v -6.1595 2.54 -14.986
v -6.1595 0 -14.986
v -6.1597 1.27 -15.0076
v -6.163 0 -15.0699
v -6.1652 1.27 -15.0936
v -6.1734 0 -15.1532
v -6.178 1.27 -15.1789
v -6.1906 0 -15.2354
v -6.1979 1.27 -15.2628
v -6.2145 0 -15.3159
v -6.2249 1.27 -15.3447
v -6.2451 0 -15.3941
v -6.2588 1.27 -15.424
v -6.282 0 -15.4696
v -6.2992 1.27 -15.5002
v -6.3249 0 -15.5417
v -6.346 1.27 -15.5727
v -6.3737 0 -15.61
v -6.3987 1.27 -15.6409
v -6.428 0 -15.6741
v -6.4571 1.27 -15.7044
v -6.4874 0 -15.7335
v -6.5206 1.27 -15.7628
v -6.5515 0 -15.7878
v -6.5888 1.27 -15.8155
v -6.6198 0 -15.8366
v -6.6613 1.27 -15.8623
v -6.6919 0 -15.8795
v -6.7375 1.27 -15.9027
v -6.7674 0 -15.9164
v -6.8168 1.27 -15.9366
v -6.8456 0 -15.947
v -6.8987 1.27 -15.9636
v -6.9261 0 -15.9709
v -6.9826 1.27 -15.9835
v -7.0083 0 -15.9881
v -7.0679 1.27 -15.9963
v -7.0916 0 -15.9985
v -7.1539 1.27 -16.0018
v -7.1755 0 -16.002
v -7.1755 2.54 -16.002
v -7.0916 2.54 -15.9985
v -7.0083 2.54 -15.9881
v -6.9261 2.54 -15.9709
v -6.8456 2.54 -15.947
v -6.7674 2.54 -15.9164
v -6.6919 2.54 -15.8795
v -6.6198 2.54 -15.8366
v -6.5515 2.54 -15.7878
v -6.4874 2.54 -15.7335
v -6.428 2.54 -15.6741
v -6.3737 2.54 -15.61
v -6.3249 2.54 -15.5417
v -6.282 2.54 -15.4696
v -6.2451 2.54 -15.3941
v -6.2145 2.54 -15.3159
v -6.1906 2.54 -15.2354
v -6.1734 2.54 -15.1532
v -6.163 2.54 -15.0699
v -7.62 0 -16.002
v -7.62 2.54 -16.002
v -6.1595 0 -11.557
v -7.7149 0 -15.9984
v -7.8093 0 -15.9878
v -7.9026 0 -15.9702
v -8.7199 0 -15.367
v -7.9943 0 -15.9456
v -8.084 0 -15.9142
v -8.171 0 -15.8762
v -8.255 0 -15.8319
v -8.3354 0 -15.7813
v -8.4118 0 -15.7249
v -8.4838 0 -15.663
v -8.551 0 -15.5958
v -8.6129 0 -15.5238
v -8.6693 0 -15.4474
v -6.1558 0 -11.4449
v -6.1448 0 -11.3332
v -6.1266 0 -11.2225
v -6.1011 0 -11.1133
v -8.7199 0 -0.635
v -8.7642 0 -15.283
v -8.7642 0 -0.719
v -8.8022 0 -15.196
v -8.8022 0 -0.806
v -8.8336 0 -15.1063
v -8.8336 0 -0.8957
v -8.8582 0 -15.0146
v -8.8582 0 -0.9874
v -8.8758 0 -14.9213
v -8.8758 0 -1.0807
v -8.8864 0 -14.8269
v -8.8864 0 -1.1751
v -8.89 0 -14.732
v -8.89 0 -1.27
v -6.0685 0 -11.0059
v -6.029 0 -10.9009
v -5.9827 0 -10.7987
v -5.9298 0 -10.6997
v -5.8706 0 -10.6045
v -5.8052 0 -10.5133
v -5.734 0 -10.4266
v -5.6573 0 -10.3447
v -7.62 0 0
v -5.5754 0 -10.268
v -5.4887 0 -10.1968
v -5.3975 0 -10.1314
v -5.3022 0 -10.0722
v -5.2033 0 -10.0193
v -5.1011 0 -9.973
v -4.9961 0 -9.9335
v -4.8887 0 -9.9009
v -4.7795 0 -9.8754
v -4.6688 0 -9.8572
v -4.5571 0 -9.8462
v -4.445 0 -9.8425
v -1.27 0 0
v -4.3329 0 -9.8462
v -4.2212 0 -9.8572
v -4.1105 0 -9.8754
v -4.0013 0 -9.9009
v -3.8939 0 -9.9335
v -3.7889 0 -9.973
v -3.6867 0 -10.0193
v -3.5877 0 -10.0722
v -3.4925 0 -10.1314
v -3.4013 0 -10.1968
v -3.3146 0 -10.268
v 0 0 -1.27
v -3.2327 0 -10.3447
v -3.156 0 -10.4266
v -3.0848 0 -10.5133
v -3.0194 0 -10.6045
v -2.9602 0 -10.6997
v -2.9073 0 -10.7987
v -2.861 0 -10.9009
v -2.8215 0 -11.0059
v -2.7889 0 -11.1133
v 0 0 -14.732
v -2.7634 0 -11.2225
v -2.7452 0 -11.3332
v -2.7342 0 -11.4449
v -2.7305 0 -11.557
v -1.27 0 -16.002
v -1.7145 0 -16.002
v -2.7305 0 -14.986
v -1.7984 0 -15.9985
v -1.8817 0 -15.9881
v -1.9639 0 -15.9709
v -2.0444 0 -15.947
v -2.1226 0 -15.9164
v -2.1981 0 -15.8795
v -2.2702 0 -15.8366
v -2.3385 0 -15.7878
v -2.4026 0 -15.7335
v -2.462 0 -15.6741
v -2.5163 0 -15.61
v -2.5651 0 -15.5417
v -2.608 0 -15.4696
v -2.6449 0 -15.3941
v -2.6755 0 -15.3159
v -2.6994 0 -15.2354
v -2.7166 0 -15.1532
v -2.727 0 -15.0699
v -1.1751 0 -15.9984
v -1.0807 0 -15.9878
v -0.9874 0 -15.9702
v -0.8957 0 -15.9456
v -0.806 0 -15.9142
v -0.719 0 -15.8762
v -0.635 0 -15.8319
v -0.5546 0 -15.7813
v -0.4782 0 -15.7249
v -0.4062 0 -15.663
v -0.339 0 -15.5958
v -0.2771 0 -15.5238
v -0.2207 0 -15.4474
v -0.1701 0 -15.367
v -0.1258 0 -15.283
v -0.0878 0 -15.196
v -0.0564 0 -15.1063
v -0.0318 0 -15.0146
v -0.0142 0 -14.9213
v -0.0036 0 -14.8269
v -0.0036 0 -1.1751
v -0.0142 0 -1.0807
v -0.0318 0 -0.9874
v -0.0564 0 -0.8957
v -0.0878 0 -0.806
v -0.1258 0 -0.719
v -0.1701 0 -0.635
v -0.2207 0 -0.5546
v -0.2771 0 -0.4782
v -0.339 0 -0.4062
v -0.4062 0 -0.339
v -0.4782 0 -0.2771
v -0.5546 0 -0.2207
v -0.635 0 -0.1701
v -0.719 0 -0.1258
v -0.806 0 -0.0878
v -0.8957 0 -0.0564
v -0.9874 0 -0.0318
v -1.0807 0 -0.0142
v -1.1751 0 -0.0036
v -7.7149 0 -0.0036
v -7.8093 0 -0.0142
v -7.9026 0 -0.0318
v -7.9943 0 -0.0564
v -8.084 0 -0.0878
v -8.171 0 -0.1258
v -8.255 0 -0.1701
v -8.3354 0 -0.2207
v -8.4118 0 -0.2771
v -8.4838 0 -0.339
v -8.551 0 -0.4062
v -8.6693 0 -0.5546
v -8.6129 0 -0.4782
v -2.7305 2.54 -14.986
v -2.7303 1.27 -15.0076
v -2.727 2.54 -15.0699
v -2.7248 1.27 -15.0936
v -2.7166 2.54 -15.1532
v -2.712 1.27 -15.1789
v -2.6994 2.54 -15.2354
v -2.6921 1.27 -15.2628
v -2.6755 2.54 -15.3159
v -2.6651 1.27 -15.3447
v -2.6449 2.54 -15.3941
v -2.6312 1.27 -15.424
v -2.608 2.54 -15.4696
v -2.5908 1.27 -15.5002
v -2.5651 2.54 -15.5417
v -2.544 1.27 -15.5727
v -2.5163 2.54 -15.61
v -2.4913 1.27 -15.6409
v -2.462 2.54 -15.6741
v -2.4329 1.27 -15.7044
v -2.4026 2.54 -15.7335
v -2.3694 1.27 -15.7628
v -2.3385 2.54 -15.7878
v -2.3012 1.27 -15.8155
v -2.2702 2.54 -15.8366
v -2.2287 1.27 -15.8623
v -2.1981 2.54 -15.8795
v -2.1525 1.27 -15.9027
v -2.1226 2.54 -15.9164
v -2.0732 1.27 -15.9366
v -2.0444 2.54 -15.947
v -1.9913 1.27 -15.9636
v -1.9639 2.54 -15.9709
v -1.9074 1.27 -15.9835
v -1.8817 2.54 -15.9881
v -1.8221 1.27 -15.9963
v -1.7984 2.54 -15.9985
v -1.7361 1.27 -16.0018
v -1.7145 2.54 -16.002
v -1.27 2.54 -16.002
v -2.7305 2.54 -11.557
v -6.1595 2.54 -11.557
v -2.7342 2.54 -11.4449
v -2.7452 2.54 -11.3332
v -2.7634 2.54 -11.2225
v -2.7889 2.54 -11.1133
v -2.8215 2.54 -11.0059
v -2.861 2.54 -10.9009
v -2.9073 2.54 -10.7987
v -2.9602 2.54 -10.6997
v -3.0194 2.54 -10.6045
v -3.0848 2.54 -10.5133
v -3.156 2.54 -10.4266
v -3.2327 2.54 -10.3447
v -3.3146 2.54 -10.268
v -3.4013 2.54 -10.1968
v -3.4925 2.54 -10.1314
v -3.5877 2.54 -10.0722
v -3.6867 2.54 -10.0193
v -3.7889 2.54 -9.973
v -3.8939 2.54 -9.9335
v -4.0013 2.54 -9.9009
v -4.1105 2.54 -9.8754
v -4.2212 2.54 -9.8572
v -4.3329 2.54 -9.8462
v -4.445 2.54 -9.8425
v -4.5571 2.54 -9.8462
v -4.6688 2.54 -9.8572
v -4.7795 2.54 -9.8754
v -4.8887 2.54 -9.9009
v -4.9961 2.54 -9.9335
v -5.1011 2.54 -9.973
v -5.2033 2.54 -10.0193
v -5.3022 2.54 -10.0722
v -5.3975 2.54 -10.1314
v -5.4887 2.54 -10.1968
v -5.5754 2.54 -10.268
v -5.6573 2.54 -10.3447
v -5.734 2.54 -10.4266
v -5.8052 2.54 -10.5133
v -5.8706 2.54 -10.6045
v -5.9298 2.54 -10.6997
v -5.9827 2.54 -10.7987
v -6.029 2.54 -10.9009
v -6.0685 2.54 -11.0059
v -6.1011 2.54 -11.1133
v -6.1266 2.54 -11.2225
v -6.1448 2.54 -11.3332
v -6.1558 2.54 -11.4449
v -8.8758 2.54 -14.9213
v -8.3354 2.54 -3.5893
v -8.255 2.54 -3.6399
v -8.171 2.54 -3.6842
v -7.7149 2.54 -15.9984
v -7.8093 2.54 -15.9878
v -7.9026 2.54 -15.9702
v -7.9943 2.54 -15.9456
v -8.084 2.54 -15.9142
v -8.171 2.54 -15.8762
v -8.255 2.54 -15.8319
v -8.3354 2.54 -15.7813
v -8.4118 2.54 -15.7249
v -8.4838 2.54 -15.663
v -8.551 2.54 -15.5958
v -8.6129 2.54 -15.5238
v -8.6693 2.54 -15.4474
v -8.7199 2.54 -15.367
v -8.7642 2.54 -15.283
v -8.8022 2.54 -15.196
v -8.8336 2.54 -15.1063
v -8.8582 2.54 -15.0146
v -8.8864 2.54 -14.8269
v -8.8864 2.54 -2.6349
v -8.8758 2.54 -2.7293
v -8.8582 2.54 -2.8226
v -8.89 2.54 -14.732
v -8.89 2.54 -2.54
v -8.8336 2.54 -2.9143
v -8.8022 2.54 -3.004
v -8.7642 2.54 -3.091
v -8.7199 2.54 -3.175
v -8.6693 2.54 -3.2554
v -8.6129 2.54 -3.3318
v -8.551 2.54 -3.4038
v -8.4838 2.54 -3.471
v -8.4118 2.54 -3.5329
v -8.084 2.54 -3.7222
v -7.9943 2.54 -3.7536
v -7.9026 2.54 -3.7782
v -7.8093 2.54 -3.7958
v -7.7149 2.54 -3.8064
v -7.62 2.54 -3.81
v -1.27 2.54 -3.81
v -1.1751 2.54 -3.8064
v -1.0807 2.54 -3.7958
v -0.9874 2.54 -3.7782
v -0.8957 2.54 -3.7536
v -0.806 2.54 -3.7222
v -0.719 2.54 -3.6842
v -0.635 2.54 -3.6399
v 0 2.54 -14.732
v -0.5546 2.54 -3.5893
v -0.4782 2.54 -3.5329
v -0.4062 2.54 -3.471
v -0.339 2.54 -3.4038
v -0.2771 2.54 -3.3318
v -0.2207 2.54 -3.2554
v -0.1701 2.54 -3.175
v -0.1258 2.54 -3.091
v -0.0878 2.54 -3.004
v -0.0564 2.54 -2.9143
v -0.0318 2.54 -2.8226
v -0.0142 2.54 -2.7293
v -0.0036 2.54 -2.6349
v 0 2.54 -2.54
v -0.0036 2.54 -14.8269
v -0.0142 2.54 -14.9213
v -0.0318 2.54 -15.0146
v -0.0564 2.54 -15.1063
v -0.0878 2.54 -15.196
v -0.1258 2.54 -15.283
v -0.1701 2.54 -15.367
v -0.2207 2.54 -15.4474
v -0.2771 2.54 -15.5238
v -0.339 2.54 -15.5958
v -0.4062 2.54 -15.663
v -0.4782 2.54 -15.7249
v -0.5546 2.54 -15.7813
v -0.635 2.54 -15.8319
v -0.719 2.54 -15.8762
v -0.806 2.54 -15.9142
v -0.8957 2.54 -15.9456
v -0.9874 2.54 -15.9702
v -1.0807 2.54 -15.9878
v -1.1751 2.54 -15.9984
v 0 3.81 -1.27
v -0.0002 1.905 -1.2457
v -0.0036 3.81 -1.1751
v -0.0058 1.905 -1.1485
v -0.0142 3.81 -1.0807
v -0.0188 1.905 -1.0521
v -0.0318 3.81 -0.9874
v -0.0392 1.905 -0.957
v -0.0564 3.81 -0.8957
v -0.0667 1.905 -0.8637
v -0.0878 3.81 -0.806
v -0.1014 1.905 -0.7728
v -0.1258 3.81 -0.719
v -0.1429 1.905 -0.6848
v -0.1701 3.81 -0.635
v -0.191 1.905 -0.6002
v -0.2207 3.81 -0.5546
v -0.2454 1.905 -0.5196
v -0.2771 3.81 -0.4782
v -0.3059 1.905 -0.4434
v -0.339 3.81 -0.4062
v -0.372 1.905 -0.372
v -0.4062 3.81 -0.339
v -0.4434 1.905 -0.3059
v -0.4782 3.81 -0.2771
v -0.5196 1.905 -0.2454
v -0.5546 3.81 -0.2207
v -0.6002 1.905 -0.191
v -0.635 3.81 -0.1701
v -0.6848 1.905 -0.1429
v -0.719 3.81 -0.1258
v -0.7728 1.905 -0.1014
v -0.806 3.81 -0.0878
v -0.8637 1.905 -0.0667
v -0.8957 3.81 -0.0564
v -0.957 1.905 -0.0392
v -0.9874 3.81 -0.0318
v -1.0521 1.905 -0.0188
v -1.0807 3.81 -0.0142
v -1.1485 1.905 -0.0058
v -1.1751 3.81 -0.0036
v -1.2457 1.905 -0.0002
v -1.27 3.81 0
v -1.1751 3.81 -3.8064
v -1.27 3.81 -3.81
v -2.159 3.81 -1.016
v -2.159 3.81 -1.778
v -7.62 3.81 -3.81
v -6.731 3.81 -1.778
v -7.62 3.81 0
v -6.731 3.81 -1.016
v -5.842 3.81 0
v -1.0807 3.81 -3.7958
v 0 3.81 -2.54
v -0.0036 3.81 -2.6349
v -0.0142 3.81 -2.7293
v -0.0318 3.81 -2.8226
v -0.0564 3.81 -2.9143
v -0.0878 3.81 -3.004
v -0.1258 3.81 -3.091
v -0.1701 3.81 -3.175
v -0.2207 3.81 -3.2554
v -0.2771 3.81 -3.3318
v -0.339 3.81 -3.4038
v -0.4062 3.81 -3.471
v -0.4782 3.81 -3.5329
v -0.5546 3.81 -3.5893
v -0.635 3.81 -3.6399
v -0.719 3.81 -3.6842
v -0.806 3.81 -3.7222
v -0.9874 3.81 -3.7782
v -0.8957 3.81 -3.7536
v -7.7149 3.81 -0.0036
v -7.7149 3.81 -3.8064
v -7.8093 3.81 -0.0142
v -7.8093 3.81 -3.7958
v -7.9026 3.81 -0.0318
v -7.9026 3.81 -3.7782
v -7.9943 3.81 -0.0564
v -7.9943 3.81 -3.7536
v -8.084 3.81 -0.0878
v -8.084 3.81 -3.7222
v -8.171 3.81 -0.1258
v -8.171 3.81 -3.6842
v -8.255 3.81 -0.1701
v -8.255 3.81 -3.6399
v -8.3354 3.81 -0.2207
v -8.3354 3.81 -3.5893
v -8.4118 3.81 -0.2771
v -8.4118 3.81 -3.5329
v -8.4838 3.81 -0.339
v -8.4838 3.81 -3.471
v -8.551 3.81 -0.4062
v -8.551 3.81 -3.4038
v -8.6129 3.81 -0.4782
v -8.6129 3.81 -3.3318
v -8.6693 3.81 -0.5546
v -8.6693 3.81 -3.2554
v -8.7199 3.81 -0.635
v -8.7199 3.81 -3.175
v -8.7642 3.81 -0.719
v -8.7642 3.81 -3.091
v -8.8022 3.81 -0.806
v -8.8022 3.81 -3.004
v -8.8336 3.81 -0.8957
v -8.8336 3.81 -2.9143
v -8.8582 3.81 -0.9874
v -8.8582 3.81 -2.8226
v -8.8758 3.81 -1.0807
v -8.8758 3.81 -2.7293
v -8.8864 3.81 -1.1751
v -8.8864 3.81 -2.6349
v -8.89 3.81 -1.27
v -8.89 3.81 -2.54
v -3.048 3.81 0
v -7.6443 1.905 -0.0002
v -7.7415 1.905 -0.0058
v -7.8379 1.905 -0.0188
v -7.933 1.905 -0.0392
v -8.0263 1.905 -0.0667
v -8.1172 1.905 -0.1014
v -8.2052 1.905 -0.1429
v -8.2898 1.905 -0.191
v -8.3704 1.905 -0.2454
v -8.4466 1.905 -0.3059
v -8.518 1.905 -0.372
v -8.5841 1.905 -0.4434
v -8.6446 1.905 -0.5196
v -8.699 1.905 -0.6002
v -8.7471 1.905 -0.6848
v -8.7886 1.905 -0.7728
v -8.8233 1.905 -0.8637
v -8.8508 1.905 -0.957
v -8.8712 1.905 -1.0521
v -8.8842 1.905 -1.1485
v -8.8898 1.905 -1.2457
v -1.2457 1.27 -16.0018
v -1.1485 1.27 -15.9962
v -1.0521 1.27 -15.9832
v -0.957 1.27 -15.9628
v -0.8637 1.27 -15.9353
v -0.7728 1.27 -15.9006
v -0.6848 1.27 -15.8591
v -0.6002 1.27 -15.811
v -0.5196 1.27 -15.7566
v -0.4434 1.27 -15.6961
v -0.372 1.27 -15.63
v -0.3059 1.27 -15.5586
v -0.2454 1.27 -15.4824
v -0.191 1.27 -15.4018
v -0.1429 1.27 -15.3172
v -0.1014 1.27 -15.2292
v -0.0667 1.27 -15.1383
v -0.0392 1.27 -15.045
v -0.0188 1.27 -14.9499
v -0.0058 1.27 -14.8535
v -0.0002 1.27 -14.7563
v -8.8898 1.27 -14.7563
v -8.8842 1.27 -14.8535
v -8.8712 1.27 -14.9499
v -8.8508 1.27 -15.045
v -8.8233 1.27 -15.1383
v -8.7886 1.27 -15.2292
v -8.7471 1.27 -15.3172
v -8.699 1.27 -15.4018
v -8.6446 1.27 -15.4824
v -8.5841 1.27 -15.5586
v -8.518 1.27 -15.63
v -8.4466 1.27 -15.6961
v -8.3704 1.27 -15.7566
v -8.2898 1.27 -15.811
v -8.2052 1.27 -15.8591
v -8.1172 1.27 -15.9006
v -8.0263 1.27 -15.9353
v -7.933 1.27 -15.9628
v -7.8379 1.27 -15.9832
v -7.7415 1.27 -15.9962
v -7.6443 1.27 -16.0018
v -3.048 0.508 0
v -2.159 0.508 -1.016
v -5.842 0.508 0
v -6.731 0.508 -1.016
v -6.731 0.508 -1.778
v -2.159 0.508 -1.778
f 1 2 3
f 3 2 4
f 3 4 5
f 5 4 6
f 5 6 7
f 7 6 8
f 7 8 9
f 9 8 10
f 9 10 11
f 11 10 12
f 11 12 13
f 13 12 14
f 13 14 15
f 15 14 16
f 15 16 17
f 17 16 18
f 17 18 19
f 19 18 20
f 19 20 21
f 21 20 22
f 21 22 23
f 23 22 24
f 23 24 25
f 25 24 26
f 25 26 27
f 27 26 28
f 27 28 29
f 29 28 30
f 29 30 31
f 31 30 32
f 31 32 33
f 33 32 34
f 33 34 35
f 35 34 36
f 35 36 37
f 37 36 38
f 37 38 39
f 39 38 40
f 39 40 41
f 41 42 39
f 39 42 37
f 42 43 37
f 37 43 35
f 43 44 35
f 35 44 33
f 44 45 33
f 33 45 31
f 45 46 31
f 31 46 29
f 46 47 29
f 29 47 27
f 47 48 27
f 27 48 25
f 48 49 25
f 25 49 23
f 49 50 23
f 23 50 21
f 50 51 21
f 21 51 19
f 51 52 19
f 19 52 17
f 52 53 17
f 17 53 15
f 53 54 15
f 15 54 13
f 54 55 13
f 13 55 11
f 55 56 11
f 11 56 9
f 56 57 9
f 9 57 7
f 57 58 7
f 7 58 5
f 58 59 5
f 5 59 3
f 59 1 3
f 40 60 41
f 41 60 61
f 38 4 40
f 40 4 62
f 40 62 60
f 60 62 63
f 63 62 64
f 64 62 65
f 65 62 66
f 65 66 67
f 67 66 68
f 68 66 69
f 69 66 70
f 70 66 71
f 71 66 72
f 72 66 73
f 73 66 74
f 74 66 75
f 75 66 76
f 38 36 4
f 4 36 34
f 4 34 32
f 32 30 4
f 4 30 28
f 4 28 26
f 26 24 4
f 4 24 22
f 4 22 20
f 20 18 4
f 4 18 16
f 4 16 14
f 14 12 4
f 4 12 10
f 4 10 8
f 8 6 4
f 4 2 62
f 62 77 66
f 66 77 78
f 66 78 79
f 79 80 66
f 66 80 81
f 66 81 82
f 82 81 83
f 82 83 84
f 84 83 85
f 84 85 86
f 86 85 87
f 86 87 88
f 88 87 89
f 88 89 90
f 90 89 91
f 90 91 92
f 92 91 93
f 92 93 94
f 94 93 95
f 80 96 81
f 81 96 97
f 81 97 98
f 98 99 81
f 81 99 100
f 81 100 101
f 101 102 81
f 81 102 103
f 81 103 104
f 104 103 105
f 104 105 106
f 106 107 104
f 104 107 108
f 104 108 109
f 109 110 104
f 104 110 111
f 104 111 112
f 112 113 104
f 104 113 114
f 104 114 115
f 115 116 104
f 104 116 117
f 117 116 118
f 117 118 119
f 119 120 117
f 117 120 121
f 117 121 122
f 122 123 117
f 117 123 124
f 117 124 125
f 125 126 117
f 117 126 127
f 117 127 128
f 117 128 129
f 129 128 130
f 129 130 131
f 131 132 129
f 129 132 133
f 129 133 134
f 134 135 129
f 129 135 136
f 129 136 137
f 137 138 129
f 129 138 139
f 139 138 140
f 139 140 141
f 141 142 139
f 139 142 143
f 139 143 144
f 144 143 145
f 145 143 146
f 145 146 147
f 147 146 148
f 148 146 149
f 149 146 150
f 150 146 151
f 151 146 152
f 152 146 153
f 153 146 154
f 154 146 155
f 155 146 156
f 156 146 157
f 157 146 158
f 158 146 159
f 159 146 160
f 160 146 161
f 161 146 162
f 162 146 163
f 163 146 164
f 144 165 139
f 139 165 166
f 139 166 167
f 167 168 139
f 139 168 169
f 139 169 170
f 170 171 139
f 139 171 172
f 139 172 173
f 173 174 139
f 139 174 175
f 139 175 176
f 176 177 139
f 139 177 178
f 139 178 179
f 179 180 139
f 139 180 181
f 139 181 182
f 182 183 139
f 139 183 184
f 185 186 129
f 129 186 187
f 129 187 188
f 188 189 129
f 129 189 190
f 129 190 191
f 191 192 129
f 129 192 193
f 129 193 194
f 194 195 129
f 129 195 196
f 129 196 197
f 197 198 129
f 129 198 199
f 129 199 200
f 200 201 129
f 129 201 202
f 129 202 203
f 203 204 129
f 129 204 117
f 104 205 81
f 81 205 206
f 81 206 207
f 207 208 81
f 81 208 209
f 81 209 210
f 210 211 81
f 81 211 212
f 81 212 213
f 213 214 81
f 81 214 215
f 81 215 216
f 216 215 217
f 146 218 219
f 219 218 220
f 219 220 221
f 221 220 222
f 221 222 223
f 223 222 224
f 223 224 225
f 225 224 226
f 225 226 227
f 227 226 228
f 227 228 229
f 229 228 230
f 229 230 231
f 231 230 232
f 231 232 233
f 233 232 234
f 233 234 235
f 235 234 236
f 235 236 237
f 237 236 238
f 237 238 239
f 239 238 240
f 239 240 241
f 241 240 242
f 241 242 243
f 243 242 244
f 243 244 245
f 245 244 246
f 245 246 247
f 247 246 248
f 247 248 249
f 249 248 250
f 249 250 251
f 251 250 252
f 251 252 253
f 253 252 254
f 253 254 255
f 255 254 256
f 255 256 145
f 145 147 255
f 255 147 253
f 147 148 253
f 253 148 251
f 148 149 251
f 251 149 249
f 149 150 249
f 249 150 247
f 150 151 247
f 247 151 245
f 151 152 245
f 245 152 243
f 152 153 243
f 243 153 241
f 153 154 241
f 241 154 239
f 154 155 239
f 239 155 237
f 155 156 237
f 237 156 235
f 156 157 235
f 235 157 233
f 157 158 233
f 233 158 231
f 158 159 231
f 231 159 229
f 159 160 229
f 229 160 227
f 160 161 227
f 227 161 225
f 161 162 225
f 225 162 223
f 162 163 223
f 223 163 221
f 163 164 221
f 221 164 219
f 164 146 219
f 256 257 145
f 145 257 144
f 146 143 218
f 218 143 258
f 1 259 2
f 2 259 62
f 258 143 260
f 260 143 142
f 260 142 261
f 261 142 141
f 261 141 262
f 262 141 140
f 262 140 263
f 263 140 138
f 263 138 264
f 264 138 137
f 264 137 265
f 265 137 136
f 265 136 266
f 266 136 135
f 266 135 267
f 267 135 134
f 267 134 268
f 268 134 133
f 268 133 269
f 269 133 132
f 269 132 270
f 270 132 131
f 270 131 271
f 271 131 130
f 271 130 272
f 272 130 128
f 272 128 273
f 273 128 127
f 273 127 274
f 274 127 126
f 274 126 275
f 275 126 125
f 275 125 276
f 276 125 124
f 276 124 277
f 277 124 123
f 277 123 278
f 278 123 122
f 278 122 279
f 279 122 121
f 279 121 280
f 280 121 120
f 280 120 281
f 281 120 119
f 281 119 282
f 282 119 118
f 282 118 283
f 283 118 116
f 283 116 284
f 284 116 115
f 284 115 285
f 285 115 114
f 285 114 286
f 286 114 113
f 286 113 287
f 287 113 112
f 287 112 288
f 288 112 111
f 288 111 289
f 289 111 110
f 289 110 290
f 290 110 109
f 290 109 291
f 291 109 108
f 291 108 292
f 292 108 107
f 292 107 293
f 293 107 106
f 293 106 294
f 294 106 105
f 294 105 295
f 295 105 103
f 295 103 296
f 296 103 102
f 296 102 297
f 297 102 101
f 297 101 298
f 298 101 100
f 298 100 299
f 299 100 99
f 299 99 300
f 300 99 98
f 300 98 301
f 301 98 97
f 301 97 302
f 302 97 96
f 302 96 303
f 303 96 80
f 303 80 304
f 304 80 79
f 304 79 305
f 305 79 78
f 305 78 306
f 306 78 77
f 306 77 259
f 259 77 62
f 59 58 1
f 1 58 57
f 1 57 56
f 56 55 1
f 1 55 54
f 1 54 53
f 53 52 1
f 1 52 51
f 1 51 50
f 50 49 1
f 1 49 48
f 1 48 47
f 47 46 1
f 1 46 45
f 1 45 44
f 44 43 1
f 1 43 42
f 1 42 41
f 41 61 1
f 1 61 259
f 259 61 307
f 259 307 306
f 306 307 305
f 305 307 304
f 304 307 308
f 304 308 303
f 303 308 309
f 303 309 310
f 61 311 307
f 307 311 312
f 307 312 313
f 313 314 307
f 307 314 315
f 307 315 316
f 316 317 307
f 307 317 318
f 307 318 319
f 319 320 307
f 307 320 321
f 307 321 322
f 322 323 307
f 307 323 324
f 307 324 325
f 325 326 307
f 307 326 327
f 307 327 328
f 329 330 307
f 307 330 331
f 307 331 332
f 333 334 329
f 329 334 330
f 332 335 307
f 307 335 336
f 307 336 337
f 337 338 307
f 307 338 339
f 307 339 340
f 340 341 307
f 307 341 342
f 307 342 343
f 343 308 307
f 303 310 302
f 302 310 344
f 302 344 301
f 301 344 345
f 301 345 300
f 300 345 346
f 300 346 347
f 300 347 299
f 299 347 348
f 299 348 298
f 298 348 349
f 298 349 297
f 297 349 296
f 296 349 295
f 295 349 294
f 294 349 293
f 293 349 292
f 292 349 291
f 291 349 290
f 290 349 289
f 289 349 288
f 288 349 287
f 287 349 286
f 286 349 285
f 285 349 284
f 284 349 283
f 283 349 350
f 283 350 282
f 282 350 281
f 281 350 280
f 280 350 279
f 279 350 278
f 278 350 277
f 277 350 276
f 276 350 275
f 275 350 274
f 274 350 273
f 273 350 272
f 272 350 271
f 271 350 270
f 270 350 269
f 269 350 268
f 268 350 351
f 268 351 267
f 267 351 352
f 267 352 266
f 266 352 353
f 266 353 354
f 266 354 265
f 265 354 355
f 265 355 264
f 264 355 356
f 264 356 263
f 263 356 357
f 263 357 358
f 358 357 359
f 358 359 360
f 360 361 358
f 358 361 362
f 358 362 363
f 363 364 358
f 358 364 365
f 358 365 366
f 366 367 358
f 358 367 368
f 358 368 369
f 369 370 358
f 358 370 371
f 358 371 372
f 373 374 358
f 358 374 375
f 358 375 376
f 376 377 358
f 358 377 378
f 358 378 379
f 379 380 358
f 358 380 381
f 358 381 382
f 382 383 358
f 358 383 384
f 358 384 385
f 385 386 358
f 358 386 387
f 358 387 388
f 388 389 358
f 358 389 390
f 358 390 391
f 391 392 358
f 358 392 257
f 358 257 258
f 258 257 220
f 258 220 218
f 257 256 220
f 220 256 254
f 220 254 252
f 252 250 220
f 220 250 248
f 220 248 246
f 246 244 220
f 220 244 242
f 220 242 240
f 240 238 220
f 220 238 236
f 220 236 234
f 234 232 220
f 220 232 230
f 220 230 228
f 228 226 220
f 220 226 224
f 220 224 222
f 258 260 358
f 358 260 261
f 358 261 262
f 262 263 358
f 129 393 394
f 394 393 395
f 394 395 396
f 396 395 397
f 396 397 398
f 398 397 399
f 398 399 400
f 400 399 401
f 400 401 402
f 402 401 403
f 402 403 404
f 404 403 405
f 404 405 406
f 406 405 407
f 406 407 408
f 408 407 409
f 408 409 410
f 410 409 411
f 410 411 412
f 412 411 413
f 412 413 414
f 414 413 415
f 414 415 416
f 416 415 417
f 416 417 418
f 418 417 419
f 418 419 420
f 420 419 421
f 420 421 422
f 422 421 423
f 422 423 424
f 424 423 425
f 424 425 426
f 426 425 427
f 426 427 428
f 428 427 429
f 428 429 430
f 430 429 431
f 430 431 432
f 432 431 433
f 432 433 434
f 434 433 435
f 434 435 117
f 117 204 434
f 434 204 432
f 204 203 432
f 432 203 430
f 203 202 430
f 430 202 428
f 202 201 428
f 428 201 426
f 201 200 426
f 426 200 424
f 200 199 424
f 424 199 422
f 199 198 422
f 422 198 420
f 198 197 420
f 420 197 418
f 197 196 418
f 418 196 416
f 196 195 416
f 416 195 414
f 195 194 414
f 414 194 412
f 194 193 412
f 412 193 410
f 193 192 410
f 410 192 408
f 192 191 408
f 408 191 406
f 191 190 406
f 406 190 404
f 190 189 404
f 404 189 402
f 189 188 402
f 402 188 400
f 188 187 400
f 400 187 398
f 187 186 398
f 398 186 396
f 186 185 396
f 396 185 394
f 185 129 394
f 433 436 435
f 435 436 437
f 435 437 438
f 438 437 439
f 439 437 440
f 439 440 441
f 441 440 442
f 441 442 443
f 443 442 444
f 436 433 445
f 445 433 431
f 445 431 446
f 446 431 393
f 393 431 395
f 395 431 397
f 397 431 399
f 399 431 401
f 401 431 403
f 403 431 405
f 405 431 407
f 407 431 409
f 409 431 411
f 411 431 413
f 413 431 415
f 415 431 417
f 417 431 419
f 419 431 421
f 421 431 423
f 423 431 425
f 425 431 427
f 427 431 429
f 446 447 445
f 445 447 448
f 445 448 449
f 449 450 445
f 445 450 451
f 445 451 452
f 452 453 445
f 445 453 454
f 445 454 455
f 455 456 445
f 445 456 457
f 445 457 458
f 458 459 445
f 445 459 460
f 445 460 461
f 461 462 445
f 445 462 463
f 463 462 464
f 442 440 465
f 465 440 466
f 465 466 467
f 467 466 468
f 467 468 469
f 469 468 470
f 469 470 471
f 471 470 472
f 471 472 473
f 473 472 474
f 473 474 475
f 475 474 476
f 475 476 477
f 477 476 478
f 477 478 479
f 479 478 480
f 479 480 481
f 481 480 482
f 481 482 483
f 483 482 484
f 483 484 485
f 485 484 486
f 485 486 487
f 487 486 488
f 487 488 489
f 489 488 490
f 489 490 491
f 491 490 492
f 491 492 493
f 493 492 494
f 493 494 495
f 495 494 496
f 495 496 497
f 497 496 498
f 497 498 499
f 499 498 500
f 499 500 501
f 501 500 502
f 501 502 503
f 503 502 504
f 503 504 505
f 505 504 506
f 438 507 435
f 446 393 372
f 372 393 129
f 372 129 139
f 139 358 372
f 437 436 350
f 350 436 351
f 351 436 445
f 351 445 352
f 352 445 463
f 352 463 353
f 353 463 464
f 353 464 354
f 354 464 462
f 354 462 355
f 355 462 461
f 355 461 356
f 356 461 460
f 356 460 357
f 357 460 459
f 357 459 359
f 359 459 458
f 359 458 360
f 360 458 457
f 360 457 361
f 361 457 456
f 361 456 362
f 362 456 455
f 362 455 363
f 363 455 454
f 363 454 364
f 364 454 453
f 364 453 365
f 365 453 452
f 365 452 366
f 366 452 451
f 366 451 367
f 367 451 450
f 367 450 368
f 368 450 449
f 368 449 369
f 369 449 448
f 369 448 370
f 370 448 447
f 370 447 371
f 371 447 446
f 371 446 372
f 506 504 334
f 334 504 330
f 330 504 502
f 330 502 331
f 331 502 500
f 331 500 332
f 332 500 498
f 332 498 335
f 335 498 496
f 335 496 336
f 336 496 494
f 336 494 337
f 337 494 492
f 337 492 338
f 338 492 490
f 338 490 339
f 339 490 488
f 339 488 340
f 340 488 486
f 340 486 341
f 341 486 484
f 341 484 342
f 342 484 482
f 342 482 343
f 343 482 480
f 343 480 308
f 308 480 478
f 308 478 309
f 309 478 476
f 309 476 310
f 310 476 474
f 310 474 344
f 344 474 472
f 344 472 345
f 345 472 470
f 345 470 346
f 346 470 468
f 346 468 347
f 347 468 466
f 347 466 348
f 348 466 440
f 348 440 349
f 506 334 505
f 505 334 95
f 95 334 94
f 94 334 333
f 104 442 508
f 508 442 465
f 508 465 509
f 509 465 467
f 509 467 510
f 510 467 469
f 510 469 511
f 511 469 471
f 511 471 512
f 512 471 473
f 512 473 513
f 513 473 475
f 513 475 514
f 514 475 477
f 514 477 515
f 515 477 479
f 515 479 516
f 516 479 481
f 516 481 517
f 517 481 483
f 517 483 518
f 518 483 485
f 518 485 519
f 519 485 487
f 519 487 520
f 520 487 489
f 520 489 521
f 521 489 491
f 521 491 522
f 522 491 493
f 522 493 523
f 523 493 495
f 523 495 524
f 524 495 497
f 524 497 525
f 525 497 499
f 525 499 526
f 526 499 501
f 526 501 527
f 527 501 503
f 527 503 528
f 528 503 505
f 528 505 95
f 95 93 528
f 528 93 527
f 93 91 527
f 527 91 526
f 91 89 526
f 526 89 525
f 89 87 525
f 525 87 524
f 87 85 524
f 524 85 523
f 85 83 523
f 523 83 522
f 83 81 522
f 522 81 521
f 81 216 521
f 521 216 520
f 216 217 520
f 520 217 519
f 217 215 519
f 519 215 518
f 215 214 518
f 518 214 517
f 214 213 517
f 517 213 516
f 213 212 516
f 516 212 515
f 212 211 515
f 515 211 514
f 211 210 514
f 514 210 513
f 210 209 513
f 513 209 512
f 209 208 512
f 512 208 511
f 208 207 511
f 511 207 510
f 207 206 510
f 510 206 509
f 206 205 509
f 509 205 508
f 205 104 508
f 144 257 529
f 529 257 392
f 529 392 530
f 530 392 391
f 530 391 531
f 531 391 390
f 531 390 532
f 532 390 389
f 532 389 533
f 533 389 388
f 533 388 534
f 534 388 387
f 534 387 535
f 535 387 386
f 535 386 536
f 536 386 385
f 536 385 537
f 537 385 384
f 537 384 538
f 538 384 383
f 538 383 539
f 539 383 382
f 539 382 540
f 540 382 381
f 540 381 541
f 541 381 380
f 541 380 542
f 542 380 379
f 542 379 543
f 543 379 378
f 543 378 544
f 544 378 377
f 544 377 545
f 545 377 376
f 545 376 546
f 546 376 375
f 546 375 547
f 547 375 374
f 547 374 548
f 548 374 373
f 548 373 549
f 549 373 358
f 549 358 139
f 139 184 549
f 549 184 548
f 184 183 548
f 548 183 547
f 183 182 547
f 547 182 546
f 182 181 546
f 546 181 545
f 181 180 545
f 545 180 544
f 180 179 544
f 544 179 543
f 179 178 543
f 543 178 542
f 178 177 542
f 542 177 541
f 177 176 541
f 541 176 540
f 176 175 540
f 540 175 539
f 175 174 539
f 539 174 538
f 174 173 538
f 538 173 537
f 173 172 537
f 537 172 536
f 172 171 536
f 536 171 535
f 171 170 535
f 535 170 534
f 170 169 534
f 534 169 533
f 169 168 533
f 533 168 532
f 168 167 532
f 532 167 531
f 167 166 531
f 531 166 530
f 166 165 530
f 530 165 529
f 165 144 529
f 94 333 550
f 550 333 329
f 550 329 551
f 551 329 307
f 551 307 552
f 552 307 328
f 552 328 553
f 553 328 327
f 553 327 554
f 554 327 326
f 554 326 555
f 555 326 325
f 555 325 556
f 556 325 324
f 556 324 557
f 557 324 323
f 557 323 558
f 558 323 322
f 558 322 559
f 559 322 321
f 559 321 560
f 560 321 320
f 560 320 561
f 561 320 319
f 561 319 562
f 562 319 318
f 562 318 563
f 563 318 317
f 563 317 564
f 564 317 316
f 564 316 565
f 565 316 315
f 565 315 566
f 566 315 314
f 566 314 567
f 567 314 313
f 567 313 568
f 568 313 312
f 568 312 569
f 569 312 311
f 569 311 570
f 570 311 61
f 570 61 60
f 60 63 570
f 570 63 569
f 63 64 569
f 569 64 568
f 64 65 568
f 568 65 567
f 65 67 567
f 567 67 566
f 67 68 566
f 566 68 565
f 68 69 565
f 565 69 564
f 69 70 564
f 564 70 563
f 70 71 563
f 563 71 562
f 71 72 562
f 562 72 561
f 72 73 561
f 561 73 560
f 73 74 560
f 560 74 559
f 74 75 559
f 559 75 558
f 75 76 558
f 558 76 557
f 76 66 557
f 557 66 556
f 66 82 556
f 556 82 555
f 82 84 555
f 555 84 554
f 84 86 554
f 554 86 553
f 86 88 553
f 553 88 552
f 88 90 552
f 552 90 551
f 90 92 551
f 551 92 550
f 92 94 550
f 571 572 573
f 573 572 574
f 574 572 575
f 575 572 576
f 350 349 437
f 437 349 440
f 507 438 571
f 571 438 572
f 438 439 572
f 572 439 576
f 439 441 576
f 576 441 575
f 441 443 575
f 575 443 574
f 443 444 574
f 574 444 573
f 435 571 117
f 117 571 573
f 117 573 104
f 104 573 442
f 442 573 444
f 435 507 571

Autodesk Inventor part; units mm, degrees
ref_plane "YZ Plane" through (0, 0, 0) normal (1, 0, 0) x (0, 1, 0)
ref_plane "XZ Plane" through (0, 0, 0) normal (0, 1, 0) x (-1, 0, 0)
ref_plane "XY Plane" through (0, 0, 0) normal (0, 0, 1) x (1, 0, 0)
sketch "Sketch1" plane through (0, 0, 0) normal (0, 1, 0) x (-1, 0, 0)
  line L0 (0, 0) -> (8.89, 0)
  line L1 (8.89, 0) -> (8.89, -16.002)
  line L2 (8.89, -16.002) -> (0, -16.002)
  line L3 (0, -16.002) -> (0, 0)
  dimension "d0" = 8.89
  dimension "d1" = 16.002
extrude "Extrusion1" add sketch "Sketch1" along normal blind 2.54
sketch "Sketch5" plane through (0, 2.54, 0) normal (0, 1, 0) x (1, 0, 0)
  line L0 (-8.89, 0) -> (0, 0) projected
  line L1 (0, 0) -> (0, 16.002) projected
  line L2 (0, 16.002) -> (-8.89, 16.002) projected
  line L3 (-8.89, 16.002) -> (-8.89, 0) projected
  line L4 (0, 0) -> (-8.89, 0) projected
  line L5 (-5.842, 0) -> (-6.731, 1.016)
  line L6 (-6.731, 1.016) -> (-6.731, 1.778)
  line L7 (-6.731, 1.778) -> (-2.159, 1.778)
  line L8 (-2.159, 1.778) -> (-2.159, 1.016)
  line L9 (-2.159, 1.016) -> (-3.048, 0)
  line L10 (-8.89, 0) -> (-8.89, 16.002) projected
  line L11 (-8.89, 3.81) -> (0, 3.81)
  point P0 (-4.445, 1.778)
  point P1 (-4.445, 3.81)
  dimension "d19" = 2.794
  dimension "d20" = 4.572
  dimension "d21" = 1.016
  dimension "d23" = 1.778
  dimension "d24" = 3.81
extrude "Extrusion4" add sketch "Sketch5" along normal blind 1.27 contours L3 L11 L1 L0 L9 L8 L7 L6 L5
sketch "Sketch6" plane through (0, 2.54, 0) normal (0, 1, 0) x (1, 0, 0)
  line L0 (-3.048, 0) -> (-2.159, 1.016) projected
  line L1 (-2.159, 1.016) -> (-2.159, 1.778) projected
  line L2 (-2.159, 1.778) -> (-6.731, 1.778) projected
  line L3 (-6.731, 1.778) -> (-6.731, 1.016) projected
  line L4 (-6.731, 1.016) -> (-5.842, 0) projected
  line L5 (-5.842, 0) -> (-3.048, 0) projected
  point P0 (0, 0)
extrude "Extrusion5" cut sketch "Sketch6" against normal blind 2.032
fillet "Fillet3" radius 1.27 6 edges at (-8.89, 1.27, -16.002) (0, 1.27, -16.002) (-8.89, 1.905, 0) (-8.89, 3.175, -3.81) (0, 3.175, -3.81) (0, 1.905, 0)
sketch "Sketch8" plane through (0, 2.54, 0) normal (0, 1, 0) x (1, 0, 0)
  line L0 (-7.62, 16.002) -> (-1.27, 16.002) projected
  line L1 (-6.1595, 16.002) -> (-6.1595, 11.557)
  line L2 (-2.7305, 16.002) -> (-2.7305, 11.557)
  arc A0 (-6.1595, 11.557) -> (-2.7305, 11.557) centre (-4.445, 11.557) ccw
  point P0 (0, 0)
  point P1 (-4.445, 16.002)
  dimension "d37" = 3.429
  dimension "d38" = 4.445
extrude "Extrusion7" cut sketch "Sketch8" against normal blind 25.4
fillet "Fillet4" radius 1.016 2 edges at (-2.7305, 1.27, -16.002) (-6.1595, 1.27, -16.002)
properties part number "HallEffectSpoolSensorMount3" material "ABS Plastic"
